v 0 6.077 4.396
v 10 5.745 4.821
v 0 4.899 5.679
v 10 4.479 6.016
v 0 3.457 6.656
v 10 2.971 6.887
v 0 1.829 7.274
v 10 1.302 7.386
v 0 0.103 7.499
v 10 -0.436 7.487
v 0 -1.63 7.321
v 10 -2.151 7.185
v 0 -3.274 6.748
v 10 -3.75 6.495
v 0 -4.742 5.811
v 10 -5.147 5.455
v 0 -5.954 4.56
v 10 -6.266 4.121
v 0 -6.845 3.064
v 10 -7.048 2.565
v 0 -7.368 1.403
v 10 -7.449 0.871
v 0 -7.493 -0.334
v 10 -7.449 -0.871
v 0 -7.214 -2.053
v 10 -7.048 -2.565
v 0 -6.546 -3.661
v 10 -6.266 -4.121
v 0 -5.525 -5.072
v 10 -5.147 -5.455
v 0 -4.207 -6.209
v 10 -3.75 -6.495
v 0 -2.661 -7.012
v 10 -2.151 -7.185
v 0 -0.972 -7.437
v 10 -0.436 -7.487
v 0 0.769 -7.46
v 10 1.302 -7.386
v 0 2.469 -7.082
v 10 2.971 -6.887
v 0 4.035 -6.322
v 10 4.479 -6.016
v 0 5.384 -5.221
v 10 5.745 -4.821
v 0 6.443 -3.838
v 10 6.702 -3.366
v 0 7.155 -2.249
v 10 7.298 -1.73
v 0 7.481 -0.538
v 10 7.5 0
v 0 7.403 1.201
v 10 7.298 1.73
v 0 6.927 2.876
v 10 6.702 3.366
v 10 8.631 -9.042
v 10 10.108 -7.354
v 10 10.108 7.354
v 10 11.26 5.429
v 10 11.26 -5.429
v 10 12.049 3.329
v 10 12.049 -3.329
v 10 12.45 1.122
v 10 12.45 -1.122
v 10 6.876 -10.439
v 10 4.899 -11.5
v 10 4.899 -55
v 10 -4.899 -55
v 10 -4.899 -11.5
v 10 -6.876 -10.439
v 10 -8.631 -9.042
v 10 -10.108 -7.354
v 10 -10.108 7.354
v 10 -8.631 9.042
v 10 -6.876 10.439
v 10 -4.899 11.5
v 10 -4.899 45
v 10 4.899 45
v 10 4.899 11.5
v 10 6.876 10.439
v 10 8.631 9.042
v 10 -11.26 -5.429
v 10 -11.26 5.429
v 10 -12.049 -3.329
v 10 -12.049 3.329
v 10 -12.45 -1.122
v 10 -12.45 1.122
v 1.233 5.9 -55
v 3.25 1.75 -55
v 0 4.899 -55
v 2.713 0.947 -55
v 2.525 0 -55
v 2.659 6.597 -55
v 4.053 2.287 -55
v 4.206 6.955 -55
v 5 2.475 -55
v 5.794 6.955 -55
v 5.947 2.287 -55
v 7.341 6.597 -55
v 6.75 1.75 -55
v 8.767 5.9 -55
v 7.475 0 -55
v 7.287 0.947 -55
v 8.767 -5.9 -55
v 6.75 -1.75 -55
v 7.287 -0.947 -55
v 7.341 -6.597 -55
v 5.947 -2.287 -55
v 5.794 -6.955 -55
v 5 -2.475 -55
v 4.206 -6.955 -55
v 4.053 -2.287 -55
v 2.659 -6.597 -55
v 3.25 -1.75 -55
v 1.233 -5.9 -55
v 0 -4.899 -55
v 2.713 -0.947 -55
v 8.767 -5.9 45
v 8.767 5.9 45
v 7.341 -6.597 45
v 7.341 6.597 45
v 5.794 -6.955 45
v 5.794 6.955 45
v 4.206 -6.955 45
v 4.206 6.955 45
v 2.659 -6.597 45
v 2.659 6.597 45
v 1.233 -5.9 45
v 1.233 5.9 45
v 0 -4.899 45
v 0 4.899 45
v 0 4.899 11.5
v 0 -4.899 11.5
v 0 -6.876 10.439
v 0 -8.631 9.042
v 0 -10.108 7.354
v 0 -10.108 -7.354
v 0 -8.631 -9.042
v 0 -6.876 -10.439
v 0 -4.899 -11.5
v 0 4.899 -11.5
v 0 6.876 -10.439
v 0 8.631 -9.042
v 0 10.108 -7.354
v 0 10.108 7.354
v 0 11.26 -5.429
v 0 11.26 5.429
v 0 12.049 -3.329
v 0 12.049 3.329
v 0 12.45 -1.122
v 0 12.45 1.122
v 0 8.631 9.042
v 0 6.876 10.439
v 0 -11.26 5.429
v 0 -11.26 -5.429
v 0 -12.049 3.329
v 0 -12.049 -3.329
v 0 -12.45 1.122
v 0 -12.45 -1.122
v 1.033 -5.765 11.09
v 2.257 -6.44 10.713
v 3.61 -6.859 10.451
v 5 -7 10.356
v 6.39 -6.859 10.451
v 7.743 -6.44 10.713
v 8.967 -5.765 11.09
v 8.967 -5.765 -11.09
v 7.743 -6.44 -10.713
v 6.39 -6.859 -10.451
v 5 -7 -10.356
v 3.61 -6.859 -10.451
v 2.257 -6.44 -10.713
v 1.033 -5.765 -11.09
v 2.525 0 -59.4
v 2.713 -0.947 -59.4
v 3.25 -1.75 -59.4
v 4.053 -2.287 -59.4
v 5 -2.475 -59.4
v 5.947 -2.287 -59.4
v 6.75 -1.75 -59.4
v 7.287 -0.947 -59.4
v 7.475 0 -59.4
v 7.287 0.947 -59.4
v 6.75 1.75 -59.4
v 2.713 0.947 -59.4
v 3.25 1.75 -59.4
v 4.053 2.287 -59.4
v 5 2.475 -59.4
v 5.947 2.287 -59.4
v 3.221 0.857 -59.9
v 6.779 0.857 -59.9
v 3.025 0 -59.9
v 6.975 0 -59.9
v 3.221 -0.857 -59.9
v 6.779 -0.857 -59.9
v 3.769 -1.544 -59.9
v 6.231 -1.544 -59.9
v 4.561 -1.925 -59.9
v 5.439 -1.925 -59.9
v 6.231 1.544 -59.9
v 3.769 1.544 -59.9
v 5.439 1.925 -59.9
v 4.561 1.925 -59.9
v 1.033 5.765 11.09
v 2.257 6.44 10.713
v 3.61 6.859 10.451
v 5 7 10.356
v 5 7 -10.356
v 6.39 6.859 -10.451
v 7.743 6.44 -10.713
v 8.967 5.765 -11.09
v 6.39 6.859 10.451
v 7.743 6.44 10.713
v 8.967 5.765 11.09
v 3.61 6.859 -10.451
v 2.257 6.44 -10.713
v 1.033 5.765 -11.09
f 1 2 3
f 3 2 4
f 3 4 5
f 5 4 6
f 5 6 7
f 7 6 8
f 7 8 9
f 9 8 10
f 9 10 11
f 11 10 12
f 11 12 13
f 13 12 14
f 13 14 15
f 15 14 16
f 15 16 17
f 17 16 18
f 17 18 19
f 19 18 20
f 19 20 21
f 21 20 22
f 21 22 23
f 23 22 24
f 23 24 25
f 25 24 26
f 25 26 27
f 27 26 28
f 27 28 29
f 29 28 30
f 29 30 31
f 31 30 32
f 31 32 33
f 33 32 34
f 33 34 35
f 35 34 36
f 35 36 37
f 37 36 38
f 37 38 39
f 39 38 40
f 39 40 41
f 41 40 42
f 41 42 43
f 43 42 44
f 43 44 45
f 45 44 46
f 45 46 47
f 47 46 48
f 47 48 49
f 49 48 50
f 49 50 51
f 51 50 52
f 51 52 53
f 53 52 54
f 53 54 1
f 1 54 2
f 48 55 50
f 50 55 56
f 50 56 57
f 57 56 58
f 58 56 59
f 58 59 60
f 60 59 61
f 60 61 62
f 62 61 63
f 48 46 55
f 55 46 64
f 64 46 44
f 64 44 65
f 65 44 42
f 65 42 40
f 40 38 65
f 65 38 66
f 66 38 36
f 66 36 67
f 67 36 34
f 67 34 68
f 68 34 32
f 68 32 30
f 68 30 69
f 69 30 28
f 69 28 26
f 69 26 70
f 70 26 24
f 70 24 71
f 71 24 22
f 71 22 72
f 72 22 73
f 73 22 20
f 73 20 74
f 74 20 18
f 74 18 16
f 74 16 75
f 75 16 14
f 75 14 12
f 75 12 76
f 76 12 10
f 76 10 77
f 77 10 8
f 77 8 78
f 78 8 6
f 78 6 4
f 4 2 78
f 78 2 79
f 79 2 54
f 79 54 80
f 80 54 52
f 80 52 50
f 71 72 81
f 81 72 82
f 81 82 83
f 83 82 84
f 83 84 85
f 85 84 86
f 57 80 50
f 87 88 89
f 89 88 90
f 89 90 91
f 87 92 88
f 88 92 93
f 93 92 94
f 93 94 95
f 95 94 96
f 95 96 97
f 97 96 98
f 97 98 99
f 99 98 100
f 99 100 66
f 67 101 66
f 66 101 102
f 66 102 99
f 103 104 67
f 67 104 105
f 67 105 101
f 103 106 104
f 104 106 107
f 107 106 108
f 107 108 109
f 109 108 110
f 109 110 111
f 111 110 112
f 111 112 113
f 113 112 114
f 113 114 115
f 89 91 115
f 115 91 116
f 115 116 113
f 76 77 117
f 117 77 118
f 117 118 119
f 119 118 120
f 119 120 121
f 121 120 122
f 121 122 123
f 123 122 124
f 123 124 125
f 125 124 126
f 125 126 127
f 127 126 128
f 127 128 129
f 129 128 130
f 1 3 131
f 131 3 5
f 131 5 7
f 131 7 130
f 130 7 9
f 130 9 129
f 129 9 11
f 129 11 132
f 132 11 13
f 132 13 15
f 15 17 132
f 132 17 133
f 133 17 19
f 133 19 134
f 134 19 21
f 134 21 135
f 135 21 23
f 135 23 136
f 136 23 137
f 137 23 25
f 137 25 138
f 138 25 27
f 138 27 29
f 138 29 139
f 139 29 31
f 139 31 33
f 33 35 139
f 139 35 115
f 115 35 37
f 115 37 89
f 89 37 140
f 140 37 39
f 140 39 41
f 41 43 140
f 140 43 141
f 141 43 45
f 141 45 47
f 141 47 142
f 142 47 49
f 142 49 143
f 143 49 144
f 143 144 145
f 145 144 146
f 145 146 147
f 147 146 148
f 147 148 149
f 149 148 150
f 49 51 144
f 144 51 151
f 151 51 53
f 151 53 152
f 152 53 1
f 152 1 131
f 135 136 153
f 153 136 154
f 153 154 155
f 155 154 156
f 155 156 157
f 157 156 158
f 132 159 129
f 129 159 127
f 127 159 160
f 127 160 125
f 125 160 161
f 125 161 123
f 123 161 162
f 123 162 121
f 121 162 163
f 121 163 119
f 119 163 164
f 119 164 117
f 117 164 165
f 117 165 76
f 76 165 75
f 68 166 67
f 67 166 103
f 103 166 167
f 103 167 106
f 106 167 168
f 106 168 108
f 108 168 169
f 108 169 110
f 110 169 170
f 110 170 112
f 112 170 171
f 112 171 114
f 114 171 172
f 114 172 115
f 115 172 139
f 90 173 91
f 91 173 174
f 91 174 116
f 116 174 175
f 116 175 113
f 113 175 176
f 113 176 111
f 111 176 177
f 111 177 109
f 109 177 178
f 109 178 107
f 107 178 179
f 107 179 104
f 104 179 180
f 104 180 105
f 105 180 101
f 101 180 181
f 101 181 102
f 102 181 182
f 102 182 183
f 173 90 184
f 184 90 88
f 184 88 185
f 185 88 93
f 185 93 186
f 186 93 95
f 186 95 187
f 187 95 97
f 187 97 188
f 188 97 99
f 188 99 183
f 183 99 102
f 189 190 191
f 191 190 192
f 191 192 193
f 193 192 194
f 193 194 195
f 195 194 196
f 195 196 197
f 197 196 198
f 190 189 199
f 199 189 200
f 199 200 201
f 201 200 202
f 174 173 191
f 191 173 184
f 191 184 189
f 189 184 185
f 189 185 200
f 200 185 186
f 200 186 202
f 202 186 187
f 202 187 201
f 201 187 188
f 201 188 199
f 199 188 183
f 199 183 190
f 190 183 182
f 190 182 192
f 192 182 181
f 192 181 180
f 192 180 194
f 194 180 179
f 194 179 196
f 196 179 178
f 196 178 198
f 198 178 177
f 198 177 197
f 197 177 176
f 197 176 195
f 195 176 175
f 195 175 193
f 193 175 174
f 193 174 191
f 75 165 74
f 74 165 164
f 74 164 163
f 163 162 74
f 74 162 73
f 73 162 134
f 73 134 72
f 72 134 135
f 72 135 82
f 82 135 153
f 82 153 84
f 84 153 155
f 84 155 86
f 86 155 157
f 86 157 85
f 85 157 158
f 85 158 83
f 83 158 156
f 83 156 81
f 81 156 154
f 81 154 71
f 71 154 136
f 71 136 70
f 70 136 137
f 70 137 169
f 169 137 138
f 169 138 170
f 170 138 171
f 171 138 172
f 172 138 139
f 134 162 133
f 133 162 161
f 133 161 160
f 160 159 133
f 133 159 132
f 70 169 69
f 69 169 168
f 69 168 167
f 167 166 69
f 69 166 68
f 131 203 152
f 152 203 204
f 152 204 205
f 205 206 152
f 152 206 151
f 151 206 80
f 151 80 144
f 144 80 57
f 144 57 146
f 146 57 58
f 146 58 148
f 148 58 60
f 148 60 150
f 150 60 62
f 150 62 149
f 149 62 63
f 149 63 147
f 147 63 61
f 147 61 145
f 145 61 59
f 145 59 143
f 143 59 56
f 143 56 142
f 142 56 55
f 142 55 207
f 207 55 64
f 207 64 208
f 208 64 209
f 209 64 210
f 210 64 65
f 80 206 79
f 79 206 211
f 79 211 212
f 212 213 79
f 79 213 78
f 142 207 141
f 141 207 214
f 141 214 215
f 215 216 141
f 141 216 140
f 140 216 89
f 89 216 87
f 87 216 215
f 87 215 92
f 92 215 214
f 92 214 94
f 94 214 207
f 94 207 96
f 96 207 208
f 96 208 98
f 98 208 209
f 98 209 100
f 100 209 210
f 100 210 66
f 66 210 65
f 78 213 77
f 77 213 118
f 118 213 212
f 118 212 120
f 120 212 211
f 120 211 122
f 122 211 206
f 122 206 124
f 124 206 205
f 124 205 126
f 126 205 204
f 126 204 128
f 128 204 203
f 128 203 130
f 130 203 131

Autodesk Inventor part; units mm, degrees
ref_plane "YZ Plane" through (0, 0, 0) normal (1, 0, 0) x (0, 1, 0)
ref_plane "XZ Plane" through (0, 0, 0) normal (0, 1, 0) x (-1, 0, 0)
ref_plane "XY Plane" through (0, 0, 0) normal (0, 0, 1) x (1, 0, 0)
sketch "Sketch1" plane through (0, 0, 0) normal (1, 0, 0) x (0, 1, 0)
  circle A0 centre (0, 0) radius 4.75
  line L0 (10, 45) -> (-10, 45)
  line L1 (10, 38) -> (-10, 38)
  line L2 (10, 45) -> (10, 38)
  line L3 (-10, 38) -> (-10, 45)
  line L4 (-4.75, 0) -> (-8.4137, 0)
  line L5 (-14, 0) -> (14, 0) projected
  line L6 (10, -55) -> (-10, -55)
  line L7 (-10, -55) -> (-10, -48)
  line L8 (-10, -48) -> (10, -48)
  line L9 (10, -48) -> (10, -55)
  line L10 (10, 38) -> (10, -48)
  line L11 (-10, -48) -> (-10, 38)
  point P0 (0, 45)
  point P1 (0, -55)
  dimension "d0" = 9.5
  dimension "d1" = 20
  dimension "d2" = 0
  dimension "d3" = 7
  dimension "d4" = 45
  dimension "d8" = 20
  dimension "d9" = 7
  dimension "d10" = 0
  dimension "d11" = 55
extrude "Extrusion1" add sketch "Sketch1" along normal blind 10 contours L5 L10 L8 L11 L4 A0 | A0 L4 L5 L11 L1 L10 | L1 L3 L0 L2 | L9 L6 L7 L8
sketch "Sketch2" plane through (0, -10, -55) normal (0, 0, -1) x (-1, 0, 0)
  circle A0 centre (-5, 10) radius 2.475
  point P0 (0, 10)
  dimension "d12" = 4.95
extrude "Extrusion2" add sketch "Sketch2" along normal blind 4.9
chamfer "Chamfer1" distance 0.5 angle 45 1 edges at (7.475, 0, -59.9)
sketch "Sketch3" plane through (0, -10, -55) normal (0, 0, -1) x (-1, 0, 0)
  circle A0 centre (-5, 10) radius 2.475 projected
  circle A1 centre (-5, 10) radius 7
  circle A2 centre (-5, 10) radius 17.4724
  point P0 (0, 10)
  dimension "d18" = 14
extrude "Extrusion3" cut sketch "Sketch3" against normal through all contours A2
sketch "Sketch4" plane through (0, 0, 0) normal (1, 0, 0) x (0, 1, 0)
  circle A0 centre (0, 0) radius 7.5
  circle A1 centre (0, 0) radius 12.5
  dimension "d21" = 15
  dimension "d22" = 5
extrude "Extrusion4" add sketch "Sketch4" along normal up to surface (10 mm away)
extrude "Extrusion5" cut sketch "Sketch4" along normal blind 10 contours A0
properties part number "nozzle holder v1"
